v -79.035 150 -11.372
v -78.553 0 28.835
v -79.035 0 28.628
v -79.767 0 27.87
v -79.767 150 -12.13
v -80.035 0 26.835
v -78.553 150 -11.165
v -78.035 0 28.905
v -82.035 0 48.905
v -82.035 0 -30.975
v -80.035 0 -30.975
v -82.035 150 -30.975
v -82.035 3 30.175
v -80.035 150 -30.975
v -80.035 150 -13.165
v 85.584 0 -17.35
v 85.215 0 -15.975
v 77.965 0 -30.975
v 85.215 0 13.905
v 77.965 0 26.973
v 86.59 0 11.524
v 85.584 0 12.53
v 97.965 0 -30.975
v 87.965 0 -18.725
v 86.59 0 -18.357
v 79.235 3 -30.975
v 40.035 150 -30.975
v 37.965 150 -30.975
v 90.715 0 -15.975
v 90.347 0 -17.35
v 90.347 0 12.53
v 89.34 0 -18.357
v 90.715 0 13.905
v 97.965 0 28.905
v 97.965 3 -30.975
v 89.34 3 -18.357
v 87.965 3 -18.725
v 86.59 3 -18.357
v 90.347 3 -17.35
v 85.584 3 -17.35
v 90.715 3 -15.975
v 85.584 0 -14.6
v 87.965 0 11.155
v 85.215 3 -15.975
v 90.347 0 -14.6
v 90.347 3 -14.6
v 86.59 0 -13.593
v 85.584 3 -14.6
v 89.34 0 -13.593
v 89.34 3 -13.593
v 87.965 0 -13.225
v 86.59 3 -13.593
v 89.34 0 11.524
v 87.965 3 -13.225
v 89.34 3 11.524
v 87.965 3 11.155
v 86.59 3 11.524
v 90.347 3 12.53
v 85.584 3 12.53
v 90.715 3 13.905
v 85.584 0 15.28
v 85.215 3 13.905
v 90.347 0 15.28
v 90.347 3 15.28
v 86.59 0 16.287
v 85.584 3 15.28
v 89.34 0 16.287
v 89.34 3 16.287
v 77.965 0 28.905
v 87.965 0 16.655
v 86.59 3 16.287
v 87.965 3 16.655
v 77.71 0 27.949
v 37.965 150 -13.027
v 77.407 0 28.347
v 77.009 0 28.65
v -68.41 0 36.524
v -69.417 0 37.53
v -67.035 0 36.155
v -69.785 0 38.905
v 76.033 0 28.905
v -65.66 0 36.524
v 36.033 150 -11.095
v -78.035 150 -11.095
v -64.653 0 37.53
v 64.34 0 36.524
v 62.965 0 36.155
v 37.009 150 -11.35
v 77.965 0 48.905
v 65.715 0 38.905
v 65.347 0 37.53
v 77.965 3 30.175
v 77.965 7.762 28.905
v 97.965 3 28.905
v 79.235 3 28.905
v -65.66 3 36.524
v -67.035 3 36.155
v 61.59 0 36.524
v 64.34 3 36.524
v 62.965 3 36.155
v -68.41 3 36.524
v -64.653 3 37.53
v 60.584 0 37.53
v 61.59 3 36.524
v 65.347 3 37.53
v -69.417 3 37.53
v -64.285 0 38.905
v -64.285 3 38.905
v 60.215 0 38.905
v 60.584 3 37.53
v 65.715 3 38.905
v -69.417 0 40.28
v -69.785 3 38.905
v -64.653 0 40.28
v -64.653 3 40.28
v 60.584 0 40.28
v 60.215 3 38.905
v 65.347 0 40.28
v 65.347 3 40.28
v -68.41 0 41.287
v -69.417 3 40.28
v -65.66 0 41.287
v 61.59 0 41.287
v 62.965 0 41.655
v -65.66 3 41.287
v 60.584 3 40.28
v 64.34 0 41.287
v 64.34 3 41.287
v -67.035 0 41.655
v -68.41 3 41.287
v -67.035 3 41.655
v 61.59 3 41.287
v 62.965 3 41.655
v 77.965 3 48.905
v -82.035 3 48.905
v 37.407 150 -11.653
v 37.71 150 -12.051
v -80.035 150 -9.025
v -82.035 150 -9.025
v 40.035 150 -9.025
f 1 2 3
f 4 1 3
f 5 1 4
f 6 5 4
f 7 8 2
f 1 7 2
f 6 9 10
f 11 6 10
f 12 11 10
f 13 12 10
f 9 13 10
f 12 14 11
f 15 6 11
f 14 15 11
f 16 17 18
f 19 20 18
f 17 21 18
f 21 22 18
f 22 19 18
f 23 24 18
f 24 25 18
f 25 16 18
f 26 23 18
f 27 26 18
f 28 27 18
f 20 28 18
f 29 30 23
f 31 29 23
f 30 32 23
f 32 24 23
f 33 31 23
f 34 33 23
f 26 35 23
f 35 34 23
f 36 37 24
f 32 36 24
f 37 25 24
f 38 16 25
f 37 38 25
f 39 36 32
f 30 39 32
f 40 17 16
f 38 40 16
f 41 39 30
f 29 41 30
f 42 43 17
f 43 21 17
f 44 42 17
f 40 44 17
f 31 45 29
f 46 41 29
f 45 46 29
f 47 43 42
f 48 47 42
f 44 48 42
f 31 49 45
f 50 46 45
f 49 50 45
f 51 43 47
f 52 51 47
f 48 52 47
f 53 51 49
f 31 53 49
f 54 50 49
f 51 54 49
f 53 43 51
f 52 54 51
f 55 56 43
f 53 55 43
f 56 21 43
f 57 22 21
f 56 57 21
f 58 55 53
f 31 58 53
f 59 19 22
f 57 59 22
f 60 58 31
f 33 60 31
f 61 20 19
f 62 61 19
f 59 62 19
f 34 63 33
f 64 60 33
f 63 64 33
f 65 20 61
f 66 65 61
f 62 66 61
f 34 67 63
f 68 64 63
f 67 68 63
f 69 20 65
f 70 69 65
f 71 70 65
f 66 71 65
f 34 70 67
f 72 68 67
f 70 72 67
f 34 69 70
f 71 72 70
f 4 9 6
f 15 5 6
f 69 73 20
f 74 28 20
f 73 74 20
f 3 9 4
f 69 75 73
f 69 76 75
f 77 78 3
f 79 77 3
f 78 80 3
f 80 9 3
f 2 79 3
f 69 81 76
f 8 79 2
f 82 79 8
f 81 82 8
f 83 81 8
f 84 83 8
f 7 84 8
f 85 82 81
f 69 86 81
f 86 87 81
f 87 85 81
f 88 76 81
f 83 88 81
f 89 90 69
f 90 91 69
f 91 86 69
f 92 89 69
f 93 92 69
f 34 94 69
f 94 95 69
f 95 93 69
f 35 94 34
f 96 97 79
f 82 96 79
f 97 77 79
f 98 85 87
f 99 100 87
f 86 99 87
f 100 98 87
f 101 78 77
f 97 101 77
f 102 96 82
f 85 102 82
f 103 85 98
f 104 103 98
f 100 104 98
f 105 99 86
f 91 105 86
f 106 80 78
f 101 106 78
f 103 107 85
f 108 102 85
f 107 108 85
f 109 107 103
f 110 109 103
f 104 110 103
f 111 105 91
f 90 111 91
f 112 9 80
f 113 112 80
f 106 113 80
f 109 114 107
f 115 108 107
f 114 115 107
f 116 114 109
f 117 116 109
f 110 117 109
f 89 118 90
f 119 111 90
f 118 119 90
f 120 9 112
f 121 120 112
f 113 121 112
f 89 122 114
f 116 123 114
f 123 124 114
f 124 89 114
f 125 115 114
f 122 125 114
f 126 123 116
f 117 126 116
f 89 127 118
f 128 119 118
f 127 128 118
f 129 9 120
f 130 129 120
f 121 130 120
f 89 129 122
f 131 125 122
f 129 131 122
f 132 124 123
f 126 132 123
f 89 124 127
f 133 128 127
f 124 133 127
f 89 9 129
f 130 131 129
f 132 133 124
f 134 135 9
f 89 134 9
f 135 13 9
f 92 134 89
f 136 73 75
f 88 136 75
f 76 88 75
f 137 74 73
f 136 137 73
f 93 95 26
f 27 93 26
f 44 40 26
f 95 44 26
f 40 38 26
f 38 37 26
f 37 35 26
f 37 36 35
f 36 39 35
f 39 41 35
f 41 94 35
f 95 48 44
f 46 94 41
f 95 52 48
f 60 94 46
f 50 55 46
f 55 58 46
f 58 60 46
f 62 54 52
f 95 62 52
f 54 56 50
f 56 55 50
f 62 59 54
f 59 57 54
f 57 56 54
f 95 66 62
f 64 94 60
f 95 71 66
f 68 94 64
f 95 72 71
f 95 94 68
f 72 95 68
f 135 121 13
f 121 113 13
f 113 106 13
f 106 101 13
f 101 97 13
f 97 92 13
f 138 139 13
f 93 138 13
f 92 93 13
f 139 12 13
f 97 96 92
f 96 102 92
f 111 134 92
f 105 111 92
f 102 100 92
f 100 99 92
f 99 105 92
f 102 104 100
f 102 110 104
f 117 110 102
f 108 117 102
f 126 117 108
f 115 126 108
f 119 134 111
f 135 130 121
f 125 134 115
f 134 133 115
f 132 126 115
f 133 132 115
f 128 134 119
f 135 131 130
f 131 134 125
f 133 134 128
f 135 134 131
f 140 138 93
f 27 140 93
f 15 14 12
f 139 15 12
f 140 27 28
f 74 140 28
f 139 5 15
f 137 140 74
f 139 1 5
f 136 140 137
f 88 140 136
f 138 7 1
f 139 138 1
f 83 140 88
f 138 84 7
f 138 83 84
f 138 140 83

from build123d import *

# Parameters (mm, degrees)
SHELL1_START        = -169
SHELL1_DEPTH        = 196.698454184
BOSS_EXTRUDE1_REACH = 223.544
SKETCH5_W           = 20
SKETCH5_H           = 3
SKETCH6_W           = 20
SKETCH6_H           = 3
BOSS_EXTRUDE2_DEPTH = 79.88011004
CUT_EXTRUDE1_REACH  = 187.712
SKETCH7_W           = 20
SKETCH7_H           = 20
BOSS_EXTRUDE3_DEPTH = 2
FILLET1_R           = 2
CUT_EXTRUDE2_REACH  = 187.712
SKETCH9_R           = 2.75


with BuildPart() as part:
    # Loft1: read off the stored shape, not the designer's step
    # Loft1: loft between two sections, ruled curve by curve
    loft1_from = [
        Edge.make_line((40.035, 150, -9.025), (-80.035, 150, -9.025)),
        Edge.make_line((-80.035, 150, -9.025), (-80.035, 150, -30.975)),
        Edge.make_line((40.035, 150, -30.975), (40.035, 150, -9.025)),
        Edge.make_line((-80.035, 150, -30.975), (40.035, 150, -30.975)),
    ]
    loft1_to = [
        Edge.make_line((80.035, 0, 30.975), (-80.035, 0, 30.975)),
        Edge.make_line((-80.035, 0, 30.975), (-80.035, 0, -30.975)),
        Edge.make_line((80.035, 0, -30.975), (80.035, 0, 30.975)),
        Edge.make_line((-80.035, 0, -30.975), (80.035, 0, -30.975)),
    ]
    loft1 = Solid(Shell([*[Face.make_surface_from_curves(loft1_from[k], loft1_to[k]) for k in range(4)], Face(Wire(loft1_from)), Face(Wire(loft1_to))]))
    add(loft1)

    # Shell1: read off the stored shape, not the designer's step
    # Shell1 outline → Shell1 (cut)
    with BuildSketch(Plane(origin=(0, 0, 0), x_dir=(0.9683714115263207, 0.24108831822232024, -0.06429021819261868), z_dir=(0.2495131446207219, -0.935674292327708, 0.2495131446207219)).offset(SHELL1_START)):
        Polygon((73.640867828, 27.929127254), (-81, 27.929127254), (-81, -31), (77.561825655, -31), (77.490573168, -29.929127254), align=None)
    extrude(amount=SHELL1_DEPTH, mode=Mode.SUBTRACT)

    # Boss-Extrude1: up to this plane
    boss_extrude1_end = Plane(origin=(74.721473029, 19.925726141, 0), z_dir=(0.9662349396012464, 0.2576626505603324, 0))
    # Sketch5 → Boss-Extrude1 (add, up to the surface)
    with BuildSketch(Plane.ZY.offset(80.035), mode=Mode.PRIVATE) as boss_extrude1_sk1:
        with Locations((38.90511004, 1.5)):
            Rectangle(SKETCH5_W, SKETCH5_H)
    boss_extrude1_tool1 = split(extrude(boss_extrude1_sk1.sketch, amount=-BOSS_EXTRUDE1_REACH, mode=Mode.PRIVATE), bisect_by=boss_extrude1_end, keep=Keep.BOTH, mode=Mode.PRIVATE)
    add(boss_extrude1_tool1.solids().sort_by_distance((-80.035, 1.5, 38.90511))[0])

    # Sketch6 → Boss-Extrude2 (add)
    with BuildSketch(Plane(origin=(0, 0, -30.975), x_dir=(-1, 0, 0), z_dir=(0, 0, -1))):
        with Locations((-87.96511004, 1.5)):
            Rectangle(SKETCH6_W, SKETCH6_H)
    extrude(amount=-BOSS_EXTRUDE2_DEPTH)

    # Sketch7 → Cut-Extrude1 (cut, up to next)
    with BuildSketch(Plane(origin=(0, 0, 0), x_dir=(-1, 0, 0), z_dir=(0, -1, 0)), mode=Mode.PRIVATE) as cut_extrude1_sk1:
        with Locations((-87.96511004, -38.90511004)):
            Rectangle(SKETCH7_W, SKETCH7_H)
    cut_extrude1_tool1 = extrude(cut_extrude1_sk1.sketch, amount=-CUT_EXTRUDE1_REACH, mode=Mode.PRIVATE) & part.part
    add(cut_extrude1_tool1.solids().sort_by_distance((87.96511, 0, 38.90511))[0], mode=Mode.SUBTRACT)

    # Sketch8 → Boss-Extrude3 (add)
    with BuildSketch(Plane.ZY.offset(80.035)):
        Polygon((28.90511004, 0), (-30.975, 0), (-30.975, 150), (-11.09488996, 150), (-9.025, 150), (30.175, 3), (48.90511004, 3), (48.90511004, 0), align=None)
    extrude(amount=BOSS_EXTRUDE3_DEPTH)

    # Fillet1
    # the kernel refuses this fillet: 2 mm, written as the material it adds along each edge
    with BuildSketch(Plane(origin=(36.797794865, 154.377431907, -12.262205135), x_dir=(0.06429021819457766, -0.24108831822179794, -0.9683714115263207), z_dir=(0.24951314462072197, -0.9356742923277082, 0.24951314462072197))) as fillet1_piece_1_section:
        with BuildLine():
            CenterArc((FILLET1_R * 0.935674292326, -FILLET1_R), FILLET1_R, 90, 86.193330917)
            Line((-FILLET1_R * 0.0621194550941, -FILLET1_R * 0.933609958504), (0, 0))
            Line((0, 0), (FILLET1_R * 0.935674292326, 0))
        make_face()
    fillet1_piece_1 = extrude(amount=172.943798365, mode=Mode.PRIVATE)
    fillet1_piece_1 = split(fillet1_piece_1, bisect_by=Plane(origin=(36.797794865, 150, -12.262205135), z_dir=(0, -1, 0)), keep=Keep.TOP, mode=Mode.PRIVATE)
    fillet1_piece_1 = split(fillet1_piece_1, bisect_by=Plane(origin=(36.797794865, 0, -12.262205135), z_dir=(0, 1, 0)), keep=Keep.TOP, mode=Mode.PRIVATE)
    add(fillet1_piece_1)
    with BuildSketch(Plane(origin=(-80.035, 154.831174698, -12.383203212), x_dir=(1, 0, 0), z_dir=(0, -0.9662349396012464, 0.2576626505603321))) as fillet1_piece_2_section:
        with BuildLine():
            CenterArc((FILLET1_R, -FILLET1_R), FILLET1_R, 90, 90)
            Line((0, -FILLET1_R), (0, 0))
            Line((0, 0), (FILLET1_R, 0))
        make_face()
    fillet1_piece_2 = extrude(amount=165.241746963, mode=Mode.PRIVATE)
    fillet1_piece_2 = split(fillet1_piece_2, bisect_by=Plane(origin=(-80.035, 150, -12.383203212), z_dir=(0, -1, 0)), keep=Keep.TOP, mode=Mode.PRIVATE)
    fillet1_piece_2 = split(fillet1_piece_2, bisect_by=Plane(origin=(-80.035, 0, -12.383203212), z_dir=(0, 1, 0)), keep=Keep.TOP, mode=Mode.PRIVATE)
    add(fillet1_piece_2)

    # Sketch9 → Cut-Extrude2 (cut, up to next)
    with BuildSketch(Plane.XZ, mode=Mode.PRIVATE) as cut_extrude2_sk1:
        with Locations(Location((87.96511004, -15.975, 0), (0, 0, 270))):
            Circle(SKETCH9_R)
    cut_extrude2_tool1 = extrude(cut_extrude2_sk1.sketch, amount=-CUT_EXTRUDE2_REACH, mode=Mode.PRIVATE) & part.part
    # Sketch9 → Cut-Extrude2 (cut, up to next)
    with BuildSketch(Plane.XZ, mode=Mode.PRIVATE) as cut_extrude2_sk2:
        with Locations(Location((87.96511004, 13.90511004, 0), (0, 0, 270))):
            Circle(SKETCH9_R)
    cut_extrude2_tool2 = extrude(cut_extrude2_sk2.sketch, amount=-CUT_EXTRUDE2_REACH, mode=Mode.PRIVATE) & part.part
    # Sketch9 → Cut-Extrude2 (cut, up to next)
    with BuildSketch(Plane.XZ, mode=Mode.PRIVATE) as cut_extrude2_sk3:
        with Locations(Location((62.96511004, 38.90511004, 0), (0, 0, 270))):
            Circle(SKETCH9_R)
    cut_extrude2_tool3 = extrude(cut_extrude2_sk3.sketch, amount=-CUT_EXTRUDE2_REACH, mode=Mode.PRIVATE) & part.part
    # Sketch9 → Cut-Extrude2 (cut, up to next)
    with BuildSketch(Plane.XZ, mode=Mode.PRIVATE) as cut_extrude2_sk4:
        with Locations(Location((-67.035, 38.90511004, 0), (0, 0, 270))):
            Circle(SKETCH9_R)
    cut_extrude2_tool4 = extrude(cut_extrude2_sk4.sketch, amount=-CUT_EXTRUDE2_REACH, mode=Mode.PRIVATE) & part.part
    add(cut_extrude2_tool1.solids().sort_by_distance((87.96511, 0, -15.975))[0], mode=Mode.SUBTRACT)
    add(cut_extrude2_tool2.solids().sort_by_distance((87.96511, 0, 13.90511))[0], mode=Mode.SUBTRACT)
    add(cut_extrude2_tool3.solids().sort_by_distance((62.96511, 0, 38.90511))[0], mode=Mode.SUBTRACT)
    add(cut_extrude2_tool4.solids().sort_by_distance((-67.035, 0, 38.90511))[0], mode=Mode.SUBTRACT)


solid = part.part
